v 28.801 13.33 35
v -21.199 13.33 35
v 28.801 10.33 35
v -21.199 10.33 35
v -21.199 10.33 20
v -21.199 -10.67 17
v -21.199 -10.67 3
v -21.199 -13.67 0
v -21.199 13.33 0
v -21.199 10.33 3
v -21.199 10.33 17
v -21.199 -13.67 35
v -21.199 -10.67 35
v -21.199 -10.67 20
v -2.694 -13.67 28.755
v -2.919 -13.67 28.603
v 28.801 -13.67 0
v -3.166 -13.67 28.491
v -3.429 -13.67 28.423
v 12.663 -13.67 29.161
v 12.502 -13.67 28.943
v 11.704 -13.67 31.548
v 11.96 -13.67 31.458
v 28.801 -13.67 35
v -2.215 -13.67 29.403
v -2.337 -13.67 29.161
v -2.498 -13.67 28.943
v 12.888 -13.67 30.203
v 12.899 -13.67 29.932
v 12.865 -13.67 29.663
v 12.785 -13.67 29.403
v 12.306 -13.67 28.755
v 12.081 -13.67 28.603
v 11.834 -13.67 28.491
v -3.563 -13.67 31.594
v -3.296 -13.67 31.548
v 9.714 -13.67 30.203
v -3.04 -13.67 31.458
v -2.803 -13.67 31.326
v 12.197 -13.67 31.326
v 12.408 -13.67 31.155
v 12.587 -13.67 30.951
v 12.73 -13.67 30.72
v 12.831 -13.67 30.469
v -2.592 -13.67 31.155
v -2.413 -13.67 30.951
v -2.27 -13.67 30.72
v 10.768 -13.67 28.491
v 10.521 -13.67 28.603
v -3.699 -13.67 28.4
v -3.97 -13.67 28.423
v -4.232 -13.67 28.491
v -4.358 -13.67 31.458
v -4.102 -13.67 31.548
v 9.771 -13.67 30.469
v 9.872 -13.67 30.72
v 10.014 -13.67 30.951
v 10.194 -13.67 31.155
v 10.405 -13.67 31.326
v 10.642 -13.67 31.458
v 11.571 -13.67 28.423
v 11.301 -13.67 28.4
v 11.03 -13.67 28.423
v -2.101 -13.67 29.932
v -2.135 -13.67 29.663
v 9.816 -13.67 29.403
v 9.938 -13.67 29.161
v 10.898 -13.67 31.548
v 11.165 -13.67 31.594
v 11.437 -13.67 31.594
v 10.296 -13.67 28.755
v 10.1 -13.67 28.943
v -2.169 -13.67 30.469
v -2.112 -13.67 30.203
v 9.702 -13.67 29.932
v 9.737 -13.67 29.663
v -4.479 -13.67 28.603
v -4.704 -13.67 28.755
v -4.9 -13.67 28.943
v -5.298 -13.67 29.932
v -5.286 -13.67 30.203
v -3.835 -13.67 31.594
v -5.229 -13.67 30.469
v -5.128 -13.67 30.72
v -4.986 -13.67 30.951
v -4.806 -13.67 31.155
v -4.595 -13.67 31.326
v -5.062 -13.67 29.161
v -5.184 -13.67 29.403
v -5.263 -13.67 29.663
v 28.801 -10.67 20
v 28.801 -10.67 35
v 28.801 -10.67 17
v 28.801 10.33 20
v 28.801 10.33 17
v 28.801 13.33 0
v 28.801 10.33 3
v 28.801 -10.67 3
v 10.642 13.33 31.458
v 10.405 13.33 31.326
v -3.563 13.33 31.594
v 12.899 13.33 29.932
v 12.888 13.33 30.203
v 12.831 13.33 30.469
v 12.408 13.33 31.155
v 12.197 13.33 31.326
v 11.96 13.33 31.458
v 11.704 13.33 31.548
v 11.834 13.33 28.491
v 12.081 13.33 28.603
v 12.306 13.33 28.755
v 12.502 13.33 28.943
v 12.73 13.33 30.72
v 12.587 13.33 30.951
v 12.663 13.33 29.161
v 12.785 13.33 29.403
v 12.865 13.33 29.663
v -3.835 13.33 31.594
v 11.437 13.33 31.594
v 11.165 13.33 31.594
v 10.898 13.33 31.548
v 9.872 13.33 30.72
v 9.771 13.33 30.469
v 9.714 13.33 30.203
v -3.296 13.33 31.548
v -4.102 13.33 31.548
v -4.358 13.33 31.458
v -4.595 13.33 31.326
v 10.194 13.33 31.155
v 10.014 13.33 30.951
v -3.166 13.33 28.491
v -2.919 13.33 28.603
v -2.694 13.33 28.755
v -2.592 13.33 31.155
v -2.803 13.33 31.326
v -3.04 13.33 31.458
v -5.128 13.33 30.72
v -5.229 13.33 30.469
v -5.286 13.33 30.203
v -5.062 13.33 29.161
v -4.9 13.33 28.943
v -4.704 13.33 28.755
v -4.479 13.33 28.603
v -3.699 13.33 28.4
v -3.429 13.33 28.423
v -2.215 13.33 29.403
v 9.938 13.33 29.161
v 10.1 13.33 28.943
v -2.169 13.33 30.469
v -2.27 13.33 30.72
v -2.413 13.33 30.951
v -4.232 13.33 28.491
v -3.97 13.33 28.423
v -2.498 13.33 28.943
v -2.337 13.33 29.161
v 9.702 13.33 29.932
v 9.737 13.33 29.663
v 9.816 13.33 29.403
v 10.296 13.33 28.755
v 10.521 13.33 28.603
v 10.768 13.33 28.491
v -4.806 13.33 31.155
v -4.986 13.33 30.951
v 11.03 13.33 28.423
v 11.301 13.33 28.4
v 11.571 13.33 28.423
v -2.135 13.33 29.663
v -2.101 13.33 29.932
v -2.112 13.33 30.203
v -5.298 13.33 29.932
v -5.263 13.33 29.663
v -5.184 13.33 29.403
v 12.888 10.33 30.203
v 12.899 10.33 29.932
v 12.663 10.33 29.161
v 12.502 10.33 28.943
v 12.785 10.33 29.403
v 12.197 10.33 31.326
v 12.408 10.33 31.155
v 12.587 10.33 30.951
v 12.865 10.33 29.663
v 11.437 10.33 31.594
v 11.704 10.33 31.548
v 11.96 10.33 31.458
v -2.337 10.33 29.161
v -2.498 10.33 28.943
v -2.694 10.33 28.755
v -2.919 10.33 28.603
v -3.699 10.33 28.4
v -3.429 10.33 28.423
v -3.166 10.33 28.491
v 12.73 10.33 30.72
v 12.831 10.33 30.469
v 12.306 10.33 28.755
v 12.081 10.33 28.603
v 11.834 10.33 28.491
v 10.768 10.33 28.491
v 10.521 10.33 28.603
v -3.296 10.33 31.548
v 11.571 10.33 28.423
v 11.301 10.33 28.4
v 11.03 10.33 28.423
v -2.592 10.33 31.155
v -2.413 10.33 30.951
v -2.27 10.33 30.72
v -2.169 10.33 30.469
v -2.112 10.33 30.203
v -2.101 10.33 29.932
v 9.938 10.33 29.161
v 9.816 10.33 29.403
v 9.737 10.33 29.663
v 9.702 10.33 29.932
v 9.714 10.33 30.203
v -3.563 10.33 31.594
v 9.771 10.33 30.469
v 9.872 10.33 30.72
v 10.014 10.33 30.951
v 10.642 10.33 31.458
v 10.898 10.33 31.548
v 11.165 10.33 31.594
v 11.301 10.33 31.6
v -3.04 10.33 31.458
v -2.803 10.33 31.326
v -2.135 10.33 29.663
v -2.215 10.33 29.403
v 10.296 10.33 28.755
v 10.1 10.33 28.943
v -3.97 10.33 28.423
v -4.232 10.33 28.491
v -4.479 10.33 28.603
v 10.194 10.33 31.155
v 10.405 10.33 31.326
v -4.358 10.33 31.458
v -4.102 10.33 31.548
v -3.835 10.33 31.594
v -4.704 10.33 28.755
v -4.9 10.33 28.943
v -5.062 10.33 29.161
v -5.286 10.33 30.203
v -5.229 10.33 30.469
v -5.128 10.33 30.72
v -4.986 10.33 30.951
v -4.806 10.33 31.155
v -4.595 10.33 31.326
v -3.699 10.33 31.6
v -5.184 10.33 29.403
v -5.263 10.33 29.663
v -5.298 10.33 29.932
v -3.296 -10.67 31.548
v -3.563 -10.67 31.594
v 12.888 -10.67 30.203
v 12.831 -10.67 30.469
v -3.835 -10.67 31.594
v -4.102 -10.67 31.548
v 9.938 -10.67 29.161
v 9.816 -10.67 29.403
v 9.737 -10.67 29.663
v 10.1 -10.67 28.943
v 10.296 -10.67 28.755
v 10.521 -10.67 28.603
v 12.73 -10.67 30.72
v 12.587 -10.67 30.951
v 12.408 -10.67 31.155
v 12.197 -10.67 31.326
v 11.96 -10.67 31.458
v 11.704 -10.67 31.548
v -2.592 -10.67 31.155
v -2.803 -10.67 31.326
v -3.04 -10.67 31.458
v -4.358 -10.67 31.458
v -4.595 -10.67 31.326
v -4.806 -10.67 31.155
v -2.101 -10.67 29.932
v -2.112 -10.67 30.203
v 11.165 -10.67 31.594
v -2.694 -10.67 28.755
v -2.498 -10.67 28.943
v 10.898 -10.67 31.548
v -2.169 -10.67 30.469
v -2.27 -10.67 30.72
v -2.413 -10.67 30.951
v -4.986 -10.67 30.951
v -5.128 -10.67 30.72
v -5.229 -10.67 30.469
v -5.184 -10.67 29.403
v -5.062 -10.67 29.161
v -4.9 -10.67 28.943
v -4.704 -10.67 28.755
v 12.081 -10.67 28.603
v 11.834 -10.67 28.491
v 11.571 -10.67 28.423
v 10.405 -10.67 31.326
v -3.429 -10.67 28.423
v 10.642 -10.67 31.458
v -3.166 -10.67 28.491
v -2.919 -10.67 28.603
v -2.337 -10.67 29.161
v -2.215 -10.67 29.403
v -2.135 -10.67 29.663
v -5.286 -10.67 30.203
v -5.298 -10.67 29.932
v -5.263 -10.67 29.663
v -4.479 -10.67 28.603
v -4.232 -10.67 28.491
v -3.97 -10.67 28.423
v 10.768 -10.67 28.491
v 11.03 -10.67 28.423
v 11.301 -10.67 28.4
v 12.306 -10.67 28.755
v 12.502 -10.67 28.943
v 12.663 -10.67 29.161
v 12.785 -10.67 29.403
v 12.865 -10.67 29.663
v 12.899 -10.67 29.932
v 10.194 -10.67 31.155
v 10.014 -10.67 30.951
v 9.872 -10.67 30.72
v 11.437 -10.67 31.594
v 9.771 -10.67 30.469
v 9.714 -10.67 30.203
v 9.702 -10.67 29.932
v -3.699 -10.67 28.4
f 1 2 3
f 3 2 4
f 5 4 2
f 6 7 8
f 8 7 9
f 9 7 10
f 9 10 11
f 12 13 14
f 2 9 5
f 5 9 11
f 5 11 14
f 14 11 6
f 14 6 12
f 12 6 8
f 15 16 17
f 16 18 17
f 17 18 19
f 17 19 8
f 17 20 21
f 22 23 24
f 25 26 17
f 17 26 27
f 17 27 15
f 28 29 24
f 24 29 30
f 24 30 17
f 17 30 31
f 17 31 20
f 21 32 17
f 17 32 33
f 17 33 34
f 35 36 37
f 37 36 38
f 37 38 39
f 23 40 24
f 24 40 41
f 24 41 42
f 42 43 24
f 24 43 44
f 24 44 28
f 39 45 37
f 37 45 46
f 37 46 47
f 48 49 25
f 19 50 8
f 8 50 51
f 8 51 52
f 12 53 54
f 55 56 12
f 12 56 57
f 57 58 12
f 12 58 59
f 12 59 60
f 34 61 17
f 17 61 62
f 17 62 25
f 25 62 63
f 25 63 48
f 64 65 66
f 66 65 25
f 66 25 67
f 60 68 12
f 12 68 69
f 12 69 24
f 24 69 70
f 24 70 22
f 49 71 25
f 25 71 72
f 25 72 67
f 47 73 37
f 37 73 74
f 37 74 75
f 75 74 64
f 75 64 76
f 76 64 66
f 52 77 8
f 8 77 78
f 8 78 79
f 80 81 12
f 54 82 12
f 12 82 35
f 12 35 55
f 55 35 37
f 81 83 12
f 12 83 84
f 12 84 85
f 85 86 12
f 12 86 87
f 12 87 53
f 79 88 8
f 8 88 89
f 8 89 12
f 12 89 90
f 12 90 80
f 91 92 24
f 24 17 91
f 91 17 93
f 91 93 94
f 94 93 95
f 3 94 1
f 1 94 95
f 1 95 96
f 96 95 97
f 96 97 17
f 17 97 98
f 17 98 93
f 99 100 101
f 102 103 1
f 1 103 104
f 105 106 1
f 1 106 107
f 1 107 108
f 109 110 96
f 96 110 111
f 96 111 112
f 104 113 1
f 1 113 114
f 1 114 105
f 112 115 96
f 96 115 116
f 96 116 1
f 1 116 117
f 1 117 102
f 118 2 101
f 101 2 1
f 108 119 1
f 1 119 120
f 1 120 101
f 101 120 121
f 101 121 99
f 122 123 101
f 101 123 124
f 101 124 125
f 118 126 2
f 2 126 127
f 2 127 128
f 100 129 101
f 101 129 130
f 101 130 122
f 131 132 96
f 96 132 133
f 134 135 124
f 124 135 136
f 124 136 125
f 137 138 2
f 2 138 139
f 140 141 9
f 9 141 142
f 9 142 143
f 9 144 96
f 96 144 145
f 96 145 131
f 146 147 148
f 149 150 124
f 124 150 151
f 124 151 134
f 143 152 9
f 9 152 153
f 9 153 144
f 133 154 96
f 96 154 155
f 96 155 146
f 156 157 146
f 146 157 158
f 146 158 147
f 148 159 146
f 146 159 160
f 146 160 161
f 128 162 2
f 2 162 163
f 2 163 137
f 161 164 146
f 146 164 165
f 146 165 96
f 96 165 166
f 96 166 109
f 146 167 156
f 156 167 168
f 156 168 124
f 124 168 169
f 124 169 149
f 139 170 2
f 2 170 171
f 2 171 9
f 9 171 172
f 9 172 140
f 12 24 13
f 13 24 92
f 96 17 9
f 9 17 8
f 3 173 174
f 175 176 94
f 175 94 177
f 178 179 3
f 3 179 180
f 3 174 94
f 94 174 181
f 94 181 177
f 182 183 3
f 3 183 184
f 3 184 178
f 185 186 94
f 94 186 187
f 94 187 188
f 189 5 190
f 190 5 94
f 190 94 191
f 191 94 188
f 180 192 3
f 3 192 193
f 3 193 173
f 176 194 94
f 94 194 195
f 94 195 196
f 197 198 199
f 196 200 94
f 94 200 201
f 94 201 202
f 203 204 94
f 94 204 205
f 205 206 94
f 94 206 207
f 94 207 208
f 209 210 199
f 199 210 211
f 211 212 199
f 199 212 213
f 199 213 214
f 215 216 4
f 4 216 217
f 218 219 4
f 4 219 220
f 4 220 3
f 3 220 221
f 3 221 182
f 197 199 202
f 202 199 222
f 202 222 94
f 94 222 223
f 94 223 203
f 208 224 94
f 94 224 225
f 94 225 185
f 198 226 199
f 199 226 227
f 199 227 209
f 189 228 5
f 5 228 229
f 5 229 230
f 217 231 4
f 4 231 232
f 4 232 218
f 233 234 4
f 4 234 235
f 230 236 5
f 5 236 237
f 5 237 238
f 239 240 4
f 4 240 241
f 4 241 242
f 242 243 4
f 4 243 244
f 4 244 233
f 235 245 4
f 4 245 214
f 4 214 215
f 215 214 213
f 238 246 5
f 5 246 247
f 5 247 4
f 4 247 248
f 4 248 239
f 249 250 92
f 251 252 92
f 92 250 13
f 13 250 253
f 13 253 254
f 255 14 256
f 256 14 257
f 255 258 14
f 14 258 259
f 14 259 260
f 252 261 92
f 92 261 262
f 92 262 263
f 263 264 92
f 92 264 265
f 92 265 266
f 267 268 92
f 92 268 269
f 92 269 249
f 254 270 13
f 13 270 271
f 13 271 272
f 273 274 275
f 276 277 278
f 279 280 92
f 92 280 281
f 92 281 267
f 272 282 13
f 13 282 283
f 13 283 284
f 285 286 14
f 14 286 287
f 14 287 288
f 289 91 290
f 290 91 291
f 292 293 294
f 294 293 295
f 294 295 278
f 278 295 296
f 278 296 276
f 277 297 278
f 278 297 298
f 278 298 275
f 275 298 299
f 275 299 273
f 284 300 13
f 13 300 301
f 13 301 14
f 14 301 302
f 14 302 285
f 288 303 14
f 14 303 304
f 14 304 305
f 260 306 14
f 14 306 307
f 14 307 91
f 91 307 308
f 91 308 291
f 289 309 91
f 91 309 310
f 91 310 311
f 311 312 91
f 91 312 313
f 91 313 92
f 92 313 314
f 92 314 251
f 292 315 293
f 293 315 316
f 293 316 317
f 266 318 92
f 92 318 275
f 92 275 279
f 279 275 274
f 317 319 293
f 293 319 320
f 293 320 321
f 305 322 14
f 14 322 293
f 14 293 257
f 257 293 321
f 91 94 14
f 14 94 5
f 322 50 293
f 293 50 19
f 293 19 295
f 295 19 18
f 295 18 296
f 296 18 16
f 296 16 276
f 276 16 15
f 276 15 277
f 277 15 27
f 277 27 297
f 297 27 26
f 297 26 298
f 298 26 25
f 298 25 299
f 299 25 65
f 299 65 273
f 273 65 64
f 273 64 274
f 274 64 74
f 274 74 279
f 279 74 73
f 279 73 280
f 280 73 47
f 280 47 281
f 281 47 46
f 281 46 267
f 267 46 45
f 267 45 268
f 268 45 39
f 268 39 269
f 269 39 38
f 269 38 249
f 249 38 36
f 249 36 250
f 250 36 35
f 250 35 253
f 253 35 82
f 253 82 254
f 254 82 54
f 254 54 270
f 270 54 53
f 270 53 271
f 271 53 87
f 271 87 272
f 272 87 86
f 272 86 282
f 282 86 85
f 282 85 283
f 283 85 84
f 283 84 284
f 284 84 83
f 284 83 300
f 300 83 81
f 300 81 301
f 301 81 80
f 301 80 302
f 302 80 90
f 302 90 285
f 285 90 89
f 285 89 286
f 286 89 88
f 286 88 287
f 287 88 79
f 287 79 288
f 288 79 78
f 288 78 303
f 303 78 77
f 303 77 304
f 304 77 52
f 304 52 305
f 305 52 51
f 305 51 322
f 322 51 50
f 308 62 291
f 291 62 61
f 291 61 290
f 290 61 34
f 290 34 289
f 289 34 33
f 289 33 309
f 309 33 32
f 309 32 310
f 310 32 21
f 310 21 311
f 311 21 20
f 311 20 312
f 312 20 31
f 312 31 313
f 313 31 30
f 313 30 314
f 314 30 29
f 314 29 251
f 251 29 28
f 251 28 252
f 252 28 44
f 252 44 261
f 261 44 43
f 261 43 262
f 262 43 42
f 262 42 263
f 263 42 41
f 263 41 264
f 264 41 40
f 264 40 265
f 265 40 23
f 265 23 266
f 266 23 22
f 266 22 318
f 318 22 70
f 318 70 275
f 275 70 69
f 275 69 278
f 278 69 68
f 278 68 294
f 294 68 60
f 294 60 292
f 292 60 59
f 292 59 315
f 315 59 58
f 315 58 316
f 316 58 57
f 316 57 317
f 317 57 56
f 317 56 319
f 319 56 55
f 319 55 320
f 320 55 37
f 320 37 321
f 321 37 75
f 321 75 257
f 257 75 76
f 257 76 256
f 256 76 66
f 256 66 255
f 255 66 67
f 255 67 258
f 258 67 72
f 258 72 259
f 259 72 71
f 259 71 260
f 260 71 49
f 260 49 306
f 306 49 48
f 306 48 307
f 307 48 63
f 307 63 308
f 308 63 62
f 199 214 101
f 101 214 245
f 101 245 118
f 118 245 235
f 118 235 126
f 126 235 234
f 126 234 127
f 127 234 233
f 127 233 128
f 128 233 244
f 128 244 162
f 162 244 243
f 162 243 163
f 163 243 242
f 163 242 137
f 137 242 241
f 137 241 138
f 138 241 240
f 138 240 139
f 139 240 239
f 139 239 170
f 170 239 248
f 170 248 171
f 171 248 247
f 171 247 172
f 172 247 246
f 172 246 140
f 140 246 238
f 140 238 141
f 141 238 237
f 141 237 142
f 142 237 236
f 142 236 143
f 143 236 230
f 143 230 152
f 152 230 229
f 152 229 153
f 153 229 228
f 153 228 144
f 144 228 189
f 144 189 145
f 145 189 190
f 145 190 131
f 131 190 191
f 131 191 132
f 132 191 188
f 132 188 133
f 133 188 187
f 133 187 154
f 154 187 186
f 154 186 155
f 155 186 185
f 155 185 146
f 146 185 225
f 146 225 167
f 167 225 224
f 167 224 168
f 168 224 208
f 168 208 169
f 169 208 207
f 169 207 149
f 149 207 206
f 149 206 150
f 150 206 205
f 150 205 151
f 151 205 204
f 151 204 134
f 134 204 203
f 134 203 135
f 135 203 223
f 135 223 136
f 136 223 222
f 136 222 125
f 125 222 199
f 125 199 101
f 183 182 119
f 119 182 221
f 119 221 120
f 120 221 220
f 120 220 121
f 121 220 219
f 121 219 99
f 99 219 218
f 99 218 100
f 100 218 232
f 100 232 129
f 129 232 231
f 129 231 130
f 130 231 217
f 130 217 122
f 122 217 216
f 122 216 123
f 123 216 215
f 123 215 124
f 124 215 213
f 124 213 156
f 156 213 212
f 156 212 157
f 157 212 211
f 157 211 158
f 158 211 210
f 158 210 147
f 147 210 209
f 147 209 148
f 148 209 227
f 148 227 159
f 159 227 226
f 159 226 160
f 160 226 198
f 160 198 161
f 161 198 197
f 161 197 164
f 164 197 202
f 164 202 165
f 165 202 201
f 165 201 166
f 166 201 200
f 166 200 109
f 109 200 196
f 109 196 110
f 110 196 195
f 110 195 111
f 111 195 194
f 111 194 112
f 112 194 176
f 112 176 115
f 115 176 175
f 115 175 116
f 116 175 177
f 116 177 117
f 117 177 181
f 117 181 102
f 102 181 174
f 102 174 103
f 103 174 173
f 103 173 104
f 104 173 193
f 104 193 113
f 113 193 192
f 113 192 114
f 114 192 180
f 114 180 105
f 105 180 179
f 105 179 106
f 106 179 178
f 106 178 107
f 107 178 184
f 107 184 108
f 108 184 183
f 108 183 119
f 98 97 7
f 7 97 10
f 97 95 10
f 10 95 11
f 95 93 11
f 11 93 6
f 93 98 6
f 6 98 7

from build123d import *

# Parameters (mm, degrees)
SKETCH_1_W          = 50
SKETCH_1_H          = 27
EXTRUDE_1_DEPTH     = 35
SKETCH_2_W          = 50
SKETCH_2_H          = 21
CUT_EXTRUDE_1_DEPTH = 15
SKETCH_3_R          = 1.6
CUT_EXTRUDE_2_DEPTH = 53.758784453
SKETCH_4_W          = 14
SKETCH_4_H          = 21
CUT_EXTRUDE_3_DEPTH = 63.544986529


with BuildPart() as part:
    # 草图1 → 凸台-拉伸1 (new body)
    with BuildSketch(Plane.XY):
        with Locations((3.800856531, -0.170235546)):
            Rectangle(SKETCH_1_W, SKETCH_1_H)
    extrude(amount=EXTRUDE_1_DEPTH)

    # 草图2 → 切除-拉伸1 (cut)
    with BuildSketch(Plane.XY.offset(35)):
        with Locations((3.800856531, -0.170235546)):
            Rectangle(SKETCH_2_W, SKETCH_2_H)
    extrude(amount=-CUT_EXTRUDE_1_DEPTH, mode=Mode.SUBTRACT)

    # 草图3 → 切除-拉伸2 (cut, through all)
    with BuildSketch(Plane.XZ.offset(13.670235546)):
        with Locations(Location((-3.699143469, 30, 0), (0, 0, 270))):
            Circle(SKETCH_3_R)
        with Locations(Location((11.300856531, 30, 0), (0, 0, 270))):
            Circle(SKETCH_3_R)
    extrude(amount=-CUT_EXTRUDE_2_DEPTH, mode=Mode.SUBTRACT)

    # 草图4 → 切除-拉伸3 (cut, through all)
    with BuildSketch(Plane.ZY.offset(21.199143469)):
        with Locations((10, -0.170235546)):
            Rectangle(SKETCH_4_W, SKETCH_4_H)
    extrude(amount=-CUT_EXTRUDE_3_DEPTH, mode=Mode.SUBTRACT)


solid = part.part
